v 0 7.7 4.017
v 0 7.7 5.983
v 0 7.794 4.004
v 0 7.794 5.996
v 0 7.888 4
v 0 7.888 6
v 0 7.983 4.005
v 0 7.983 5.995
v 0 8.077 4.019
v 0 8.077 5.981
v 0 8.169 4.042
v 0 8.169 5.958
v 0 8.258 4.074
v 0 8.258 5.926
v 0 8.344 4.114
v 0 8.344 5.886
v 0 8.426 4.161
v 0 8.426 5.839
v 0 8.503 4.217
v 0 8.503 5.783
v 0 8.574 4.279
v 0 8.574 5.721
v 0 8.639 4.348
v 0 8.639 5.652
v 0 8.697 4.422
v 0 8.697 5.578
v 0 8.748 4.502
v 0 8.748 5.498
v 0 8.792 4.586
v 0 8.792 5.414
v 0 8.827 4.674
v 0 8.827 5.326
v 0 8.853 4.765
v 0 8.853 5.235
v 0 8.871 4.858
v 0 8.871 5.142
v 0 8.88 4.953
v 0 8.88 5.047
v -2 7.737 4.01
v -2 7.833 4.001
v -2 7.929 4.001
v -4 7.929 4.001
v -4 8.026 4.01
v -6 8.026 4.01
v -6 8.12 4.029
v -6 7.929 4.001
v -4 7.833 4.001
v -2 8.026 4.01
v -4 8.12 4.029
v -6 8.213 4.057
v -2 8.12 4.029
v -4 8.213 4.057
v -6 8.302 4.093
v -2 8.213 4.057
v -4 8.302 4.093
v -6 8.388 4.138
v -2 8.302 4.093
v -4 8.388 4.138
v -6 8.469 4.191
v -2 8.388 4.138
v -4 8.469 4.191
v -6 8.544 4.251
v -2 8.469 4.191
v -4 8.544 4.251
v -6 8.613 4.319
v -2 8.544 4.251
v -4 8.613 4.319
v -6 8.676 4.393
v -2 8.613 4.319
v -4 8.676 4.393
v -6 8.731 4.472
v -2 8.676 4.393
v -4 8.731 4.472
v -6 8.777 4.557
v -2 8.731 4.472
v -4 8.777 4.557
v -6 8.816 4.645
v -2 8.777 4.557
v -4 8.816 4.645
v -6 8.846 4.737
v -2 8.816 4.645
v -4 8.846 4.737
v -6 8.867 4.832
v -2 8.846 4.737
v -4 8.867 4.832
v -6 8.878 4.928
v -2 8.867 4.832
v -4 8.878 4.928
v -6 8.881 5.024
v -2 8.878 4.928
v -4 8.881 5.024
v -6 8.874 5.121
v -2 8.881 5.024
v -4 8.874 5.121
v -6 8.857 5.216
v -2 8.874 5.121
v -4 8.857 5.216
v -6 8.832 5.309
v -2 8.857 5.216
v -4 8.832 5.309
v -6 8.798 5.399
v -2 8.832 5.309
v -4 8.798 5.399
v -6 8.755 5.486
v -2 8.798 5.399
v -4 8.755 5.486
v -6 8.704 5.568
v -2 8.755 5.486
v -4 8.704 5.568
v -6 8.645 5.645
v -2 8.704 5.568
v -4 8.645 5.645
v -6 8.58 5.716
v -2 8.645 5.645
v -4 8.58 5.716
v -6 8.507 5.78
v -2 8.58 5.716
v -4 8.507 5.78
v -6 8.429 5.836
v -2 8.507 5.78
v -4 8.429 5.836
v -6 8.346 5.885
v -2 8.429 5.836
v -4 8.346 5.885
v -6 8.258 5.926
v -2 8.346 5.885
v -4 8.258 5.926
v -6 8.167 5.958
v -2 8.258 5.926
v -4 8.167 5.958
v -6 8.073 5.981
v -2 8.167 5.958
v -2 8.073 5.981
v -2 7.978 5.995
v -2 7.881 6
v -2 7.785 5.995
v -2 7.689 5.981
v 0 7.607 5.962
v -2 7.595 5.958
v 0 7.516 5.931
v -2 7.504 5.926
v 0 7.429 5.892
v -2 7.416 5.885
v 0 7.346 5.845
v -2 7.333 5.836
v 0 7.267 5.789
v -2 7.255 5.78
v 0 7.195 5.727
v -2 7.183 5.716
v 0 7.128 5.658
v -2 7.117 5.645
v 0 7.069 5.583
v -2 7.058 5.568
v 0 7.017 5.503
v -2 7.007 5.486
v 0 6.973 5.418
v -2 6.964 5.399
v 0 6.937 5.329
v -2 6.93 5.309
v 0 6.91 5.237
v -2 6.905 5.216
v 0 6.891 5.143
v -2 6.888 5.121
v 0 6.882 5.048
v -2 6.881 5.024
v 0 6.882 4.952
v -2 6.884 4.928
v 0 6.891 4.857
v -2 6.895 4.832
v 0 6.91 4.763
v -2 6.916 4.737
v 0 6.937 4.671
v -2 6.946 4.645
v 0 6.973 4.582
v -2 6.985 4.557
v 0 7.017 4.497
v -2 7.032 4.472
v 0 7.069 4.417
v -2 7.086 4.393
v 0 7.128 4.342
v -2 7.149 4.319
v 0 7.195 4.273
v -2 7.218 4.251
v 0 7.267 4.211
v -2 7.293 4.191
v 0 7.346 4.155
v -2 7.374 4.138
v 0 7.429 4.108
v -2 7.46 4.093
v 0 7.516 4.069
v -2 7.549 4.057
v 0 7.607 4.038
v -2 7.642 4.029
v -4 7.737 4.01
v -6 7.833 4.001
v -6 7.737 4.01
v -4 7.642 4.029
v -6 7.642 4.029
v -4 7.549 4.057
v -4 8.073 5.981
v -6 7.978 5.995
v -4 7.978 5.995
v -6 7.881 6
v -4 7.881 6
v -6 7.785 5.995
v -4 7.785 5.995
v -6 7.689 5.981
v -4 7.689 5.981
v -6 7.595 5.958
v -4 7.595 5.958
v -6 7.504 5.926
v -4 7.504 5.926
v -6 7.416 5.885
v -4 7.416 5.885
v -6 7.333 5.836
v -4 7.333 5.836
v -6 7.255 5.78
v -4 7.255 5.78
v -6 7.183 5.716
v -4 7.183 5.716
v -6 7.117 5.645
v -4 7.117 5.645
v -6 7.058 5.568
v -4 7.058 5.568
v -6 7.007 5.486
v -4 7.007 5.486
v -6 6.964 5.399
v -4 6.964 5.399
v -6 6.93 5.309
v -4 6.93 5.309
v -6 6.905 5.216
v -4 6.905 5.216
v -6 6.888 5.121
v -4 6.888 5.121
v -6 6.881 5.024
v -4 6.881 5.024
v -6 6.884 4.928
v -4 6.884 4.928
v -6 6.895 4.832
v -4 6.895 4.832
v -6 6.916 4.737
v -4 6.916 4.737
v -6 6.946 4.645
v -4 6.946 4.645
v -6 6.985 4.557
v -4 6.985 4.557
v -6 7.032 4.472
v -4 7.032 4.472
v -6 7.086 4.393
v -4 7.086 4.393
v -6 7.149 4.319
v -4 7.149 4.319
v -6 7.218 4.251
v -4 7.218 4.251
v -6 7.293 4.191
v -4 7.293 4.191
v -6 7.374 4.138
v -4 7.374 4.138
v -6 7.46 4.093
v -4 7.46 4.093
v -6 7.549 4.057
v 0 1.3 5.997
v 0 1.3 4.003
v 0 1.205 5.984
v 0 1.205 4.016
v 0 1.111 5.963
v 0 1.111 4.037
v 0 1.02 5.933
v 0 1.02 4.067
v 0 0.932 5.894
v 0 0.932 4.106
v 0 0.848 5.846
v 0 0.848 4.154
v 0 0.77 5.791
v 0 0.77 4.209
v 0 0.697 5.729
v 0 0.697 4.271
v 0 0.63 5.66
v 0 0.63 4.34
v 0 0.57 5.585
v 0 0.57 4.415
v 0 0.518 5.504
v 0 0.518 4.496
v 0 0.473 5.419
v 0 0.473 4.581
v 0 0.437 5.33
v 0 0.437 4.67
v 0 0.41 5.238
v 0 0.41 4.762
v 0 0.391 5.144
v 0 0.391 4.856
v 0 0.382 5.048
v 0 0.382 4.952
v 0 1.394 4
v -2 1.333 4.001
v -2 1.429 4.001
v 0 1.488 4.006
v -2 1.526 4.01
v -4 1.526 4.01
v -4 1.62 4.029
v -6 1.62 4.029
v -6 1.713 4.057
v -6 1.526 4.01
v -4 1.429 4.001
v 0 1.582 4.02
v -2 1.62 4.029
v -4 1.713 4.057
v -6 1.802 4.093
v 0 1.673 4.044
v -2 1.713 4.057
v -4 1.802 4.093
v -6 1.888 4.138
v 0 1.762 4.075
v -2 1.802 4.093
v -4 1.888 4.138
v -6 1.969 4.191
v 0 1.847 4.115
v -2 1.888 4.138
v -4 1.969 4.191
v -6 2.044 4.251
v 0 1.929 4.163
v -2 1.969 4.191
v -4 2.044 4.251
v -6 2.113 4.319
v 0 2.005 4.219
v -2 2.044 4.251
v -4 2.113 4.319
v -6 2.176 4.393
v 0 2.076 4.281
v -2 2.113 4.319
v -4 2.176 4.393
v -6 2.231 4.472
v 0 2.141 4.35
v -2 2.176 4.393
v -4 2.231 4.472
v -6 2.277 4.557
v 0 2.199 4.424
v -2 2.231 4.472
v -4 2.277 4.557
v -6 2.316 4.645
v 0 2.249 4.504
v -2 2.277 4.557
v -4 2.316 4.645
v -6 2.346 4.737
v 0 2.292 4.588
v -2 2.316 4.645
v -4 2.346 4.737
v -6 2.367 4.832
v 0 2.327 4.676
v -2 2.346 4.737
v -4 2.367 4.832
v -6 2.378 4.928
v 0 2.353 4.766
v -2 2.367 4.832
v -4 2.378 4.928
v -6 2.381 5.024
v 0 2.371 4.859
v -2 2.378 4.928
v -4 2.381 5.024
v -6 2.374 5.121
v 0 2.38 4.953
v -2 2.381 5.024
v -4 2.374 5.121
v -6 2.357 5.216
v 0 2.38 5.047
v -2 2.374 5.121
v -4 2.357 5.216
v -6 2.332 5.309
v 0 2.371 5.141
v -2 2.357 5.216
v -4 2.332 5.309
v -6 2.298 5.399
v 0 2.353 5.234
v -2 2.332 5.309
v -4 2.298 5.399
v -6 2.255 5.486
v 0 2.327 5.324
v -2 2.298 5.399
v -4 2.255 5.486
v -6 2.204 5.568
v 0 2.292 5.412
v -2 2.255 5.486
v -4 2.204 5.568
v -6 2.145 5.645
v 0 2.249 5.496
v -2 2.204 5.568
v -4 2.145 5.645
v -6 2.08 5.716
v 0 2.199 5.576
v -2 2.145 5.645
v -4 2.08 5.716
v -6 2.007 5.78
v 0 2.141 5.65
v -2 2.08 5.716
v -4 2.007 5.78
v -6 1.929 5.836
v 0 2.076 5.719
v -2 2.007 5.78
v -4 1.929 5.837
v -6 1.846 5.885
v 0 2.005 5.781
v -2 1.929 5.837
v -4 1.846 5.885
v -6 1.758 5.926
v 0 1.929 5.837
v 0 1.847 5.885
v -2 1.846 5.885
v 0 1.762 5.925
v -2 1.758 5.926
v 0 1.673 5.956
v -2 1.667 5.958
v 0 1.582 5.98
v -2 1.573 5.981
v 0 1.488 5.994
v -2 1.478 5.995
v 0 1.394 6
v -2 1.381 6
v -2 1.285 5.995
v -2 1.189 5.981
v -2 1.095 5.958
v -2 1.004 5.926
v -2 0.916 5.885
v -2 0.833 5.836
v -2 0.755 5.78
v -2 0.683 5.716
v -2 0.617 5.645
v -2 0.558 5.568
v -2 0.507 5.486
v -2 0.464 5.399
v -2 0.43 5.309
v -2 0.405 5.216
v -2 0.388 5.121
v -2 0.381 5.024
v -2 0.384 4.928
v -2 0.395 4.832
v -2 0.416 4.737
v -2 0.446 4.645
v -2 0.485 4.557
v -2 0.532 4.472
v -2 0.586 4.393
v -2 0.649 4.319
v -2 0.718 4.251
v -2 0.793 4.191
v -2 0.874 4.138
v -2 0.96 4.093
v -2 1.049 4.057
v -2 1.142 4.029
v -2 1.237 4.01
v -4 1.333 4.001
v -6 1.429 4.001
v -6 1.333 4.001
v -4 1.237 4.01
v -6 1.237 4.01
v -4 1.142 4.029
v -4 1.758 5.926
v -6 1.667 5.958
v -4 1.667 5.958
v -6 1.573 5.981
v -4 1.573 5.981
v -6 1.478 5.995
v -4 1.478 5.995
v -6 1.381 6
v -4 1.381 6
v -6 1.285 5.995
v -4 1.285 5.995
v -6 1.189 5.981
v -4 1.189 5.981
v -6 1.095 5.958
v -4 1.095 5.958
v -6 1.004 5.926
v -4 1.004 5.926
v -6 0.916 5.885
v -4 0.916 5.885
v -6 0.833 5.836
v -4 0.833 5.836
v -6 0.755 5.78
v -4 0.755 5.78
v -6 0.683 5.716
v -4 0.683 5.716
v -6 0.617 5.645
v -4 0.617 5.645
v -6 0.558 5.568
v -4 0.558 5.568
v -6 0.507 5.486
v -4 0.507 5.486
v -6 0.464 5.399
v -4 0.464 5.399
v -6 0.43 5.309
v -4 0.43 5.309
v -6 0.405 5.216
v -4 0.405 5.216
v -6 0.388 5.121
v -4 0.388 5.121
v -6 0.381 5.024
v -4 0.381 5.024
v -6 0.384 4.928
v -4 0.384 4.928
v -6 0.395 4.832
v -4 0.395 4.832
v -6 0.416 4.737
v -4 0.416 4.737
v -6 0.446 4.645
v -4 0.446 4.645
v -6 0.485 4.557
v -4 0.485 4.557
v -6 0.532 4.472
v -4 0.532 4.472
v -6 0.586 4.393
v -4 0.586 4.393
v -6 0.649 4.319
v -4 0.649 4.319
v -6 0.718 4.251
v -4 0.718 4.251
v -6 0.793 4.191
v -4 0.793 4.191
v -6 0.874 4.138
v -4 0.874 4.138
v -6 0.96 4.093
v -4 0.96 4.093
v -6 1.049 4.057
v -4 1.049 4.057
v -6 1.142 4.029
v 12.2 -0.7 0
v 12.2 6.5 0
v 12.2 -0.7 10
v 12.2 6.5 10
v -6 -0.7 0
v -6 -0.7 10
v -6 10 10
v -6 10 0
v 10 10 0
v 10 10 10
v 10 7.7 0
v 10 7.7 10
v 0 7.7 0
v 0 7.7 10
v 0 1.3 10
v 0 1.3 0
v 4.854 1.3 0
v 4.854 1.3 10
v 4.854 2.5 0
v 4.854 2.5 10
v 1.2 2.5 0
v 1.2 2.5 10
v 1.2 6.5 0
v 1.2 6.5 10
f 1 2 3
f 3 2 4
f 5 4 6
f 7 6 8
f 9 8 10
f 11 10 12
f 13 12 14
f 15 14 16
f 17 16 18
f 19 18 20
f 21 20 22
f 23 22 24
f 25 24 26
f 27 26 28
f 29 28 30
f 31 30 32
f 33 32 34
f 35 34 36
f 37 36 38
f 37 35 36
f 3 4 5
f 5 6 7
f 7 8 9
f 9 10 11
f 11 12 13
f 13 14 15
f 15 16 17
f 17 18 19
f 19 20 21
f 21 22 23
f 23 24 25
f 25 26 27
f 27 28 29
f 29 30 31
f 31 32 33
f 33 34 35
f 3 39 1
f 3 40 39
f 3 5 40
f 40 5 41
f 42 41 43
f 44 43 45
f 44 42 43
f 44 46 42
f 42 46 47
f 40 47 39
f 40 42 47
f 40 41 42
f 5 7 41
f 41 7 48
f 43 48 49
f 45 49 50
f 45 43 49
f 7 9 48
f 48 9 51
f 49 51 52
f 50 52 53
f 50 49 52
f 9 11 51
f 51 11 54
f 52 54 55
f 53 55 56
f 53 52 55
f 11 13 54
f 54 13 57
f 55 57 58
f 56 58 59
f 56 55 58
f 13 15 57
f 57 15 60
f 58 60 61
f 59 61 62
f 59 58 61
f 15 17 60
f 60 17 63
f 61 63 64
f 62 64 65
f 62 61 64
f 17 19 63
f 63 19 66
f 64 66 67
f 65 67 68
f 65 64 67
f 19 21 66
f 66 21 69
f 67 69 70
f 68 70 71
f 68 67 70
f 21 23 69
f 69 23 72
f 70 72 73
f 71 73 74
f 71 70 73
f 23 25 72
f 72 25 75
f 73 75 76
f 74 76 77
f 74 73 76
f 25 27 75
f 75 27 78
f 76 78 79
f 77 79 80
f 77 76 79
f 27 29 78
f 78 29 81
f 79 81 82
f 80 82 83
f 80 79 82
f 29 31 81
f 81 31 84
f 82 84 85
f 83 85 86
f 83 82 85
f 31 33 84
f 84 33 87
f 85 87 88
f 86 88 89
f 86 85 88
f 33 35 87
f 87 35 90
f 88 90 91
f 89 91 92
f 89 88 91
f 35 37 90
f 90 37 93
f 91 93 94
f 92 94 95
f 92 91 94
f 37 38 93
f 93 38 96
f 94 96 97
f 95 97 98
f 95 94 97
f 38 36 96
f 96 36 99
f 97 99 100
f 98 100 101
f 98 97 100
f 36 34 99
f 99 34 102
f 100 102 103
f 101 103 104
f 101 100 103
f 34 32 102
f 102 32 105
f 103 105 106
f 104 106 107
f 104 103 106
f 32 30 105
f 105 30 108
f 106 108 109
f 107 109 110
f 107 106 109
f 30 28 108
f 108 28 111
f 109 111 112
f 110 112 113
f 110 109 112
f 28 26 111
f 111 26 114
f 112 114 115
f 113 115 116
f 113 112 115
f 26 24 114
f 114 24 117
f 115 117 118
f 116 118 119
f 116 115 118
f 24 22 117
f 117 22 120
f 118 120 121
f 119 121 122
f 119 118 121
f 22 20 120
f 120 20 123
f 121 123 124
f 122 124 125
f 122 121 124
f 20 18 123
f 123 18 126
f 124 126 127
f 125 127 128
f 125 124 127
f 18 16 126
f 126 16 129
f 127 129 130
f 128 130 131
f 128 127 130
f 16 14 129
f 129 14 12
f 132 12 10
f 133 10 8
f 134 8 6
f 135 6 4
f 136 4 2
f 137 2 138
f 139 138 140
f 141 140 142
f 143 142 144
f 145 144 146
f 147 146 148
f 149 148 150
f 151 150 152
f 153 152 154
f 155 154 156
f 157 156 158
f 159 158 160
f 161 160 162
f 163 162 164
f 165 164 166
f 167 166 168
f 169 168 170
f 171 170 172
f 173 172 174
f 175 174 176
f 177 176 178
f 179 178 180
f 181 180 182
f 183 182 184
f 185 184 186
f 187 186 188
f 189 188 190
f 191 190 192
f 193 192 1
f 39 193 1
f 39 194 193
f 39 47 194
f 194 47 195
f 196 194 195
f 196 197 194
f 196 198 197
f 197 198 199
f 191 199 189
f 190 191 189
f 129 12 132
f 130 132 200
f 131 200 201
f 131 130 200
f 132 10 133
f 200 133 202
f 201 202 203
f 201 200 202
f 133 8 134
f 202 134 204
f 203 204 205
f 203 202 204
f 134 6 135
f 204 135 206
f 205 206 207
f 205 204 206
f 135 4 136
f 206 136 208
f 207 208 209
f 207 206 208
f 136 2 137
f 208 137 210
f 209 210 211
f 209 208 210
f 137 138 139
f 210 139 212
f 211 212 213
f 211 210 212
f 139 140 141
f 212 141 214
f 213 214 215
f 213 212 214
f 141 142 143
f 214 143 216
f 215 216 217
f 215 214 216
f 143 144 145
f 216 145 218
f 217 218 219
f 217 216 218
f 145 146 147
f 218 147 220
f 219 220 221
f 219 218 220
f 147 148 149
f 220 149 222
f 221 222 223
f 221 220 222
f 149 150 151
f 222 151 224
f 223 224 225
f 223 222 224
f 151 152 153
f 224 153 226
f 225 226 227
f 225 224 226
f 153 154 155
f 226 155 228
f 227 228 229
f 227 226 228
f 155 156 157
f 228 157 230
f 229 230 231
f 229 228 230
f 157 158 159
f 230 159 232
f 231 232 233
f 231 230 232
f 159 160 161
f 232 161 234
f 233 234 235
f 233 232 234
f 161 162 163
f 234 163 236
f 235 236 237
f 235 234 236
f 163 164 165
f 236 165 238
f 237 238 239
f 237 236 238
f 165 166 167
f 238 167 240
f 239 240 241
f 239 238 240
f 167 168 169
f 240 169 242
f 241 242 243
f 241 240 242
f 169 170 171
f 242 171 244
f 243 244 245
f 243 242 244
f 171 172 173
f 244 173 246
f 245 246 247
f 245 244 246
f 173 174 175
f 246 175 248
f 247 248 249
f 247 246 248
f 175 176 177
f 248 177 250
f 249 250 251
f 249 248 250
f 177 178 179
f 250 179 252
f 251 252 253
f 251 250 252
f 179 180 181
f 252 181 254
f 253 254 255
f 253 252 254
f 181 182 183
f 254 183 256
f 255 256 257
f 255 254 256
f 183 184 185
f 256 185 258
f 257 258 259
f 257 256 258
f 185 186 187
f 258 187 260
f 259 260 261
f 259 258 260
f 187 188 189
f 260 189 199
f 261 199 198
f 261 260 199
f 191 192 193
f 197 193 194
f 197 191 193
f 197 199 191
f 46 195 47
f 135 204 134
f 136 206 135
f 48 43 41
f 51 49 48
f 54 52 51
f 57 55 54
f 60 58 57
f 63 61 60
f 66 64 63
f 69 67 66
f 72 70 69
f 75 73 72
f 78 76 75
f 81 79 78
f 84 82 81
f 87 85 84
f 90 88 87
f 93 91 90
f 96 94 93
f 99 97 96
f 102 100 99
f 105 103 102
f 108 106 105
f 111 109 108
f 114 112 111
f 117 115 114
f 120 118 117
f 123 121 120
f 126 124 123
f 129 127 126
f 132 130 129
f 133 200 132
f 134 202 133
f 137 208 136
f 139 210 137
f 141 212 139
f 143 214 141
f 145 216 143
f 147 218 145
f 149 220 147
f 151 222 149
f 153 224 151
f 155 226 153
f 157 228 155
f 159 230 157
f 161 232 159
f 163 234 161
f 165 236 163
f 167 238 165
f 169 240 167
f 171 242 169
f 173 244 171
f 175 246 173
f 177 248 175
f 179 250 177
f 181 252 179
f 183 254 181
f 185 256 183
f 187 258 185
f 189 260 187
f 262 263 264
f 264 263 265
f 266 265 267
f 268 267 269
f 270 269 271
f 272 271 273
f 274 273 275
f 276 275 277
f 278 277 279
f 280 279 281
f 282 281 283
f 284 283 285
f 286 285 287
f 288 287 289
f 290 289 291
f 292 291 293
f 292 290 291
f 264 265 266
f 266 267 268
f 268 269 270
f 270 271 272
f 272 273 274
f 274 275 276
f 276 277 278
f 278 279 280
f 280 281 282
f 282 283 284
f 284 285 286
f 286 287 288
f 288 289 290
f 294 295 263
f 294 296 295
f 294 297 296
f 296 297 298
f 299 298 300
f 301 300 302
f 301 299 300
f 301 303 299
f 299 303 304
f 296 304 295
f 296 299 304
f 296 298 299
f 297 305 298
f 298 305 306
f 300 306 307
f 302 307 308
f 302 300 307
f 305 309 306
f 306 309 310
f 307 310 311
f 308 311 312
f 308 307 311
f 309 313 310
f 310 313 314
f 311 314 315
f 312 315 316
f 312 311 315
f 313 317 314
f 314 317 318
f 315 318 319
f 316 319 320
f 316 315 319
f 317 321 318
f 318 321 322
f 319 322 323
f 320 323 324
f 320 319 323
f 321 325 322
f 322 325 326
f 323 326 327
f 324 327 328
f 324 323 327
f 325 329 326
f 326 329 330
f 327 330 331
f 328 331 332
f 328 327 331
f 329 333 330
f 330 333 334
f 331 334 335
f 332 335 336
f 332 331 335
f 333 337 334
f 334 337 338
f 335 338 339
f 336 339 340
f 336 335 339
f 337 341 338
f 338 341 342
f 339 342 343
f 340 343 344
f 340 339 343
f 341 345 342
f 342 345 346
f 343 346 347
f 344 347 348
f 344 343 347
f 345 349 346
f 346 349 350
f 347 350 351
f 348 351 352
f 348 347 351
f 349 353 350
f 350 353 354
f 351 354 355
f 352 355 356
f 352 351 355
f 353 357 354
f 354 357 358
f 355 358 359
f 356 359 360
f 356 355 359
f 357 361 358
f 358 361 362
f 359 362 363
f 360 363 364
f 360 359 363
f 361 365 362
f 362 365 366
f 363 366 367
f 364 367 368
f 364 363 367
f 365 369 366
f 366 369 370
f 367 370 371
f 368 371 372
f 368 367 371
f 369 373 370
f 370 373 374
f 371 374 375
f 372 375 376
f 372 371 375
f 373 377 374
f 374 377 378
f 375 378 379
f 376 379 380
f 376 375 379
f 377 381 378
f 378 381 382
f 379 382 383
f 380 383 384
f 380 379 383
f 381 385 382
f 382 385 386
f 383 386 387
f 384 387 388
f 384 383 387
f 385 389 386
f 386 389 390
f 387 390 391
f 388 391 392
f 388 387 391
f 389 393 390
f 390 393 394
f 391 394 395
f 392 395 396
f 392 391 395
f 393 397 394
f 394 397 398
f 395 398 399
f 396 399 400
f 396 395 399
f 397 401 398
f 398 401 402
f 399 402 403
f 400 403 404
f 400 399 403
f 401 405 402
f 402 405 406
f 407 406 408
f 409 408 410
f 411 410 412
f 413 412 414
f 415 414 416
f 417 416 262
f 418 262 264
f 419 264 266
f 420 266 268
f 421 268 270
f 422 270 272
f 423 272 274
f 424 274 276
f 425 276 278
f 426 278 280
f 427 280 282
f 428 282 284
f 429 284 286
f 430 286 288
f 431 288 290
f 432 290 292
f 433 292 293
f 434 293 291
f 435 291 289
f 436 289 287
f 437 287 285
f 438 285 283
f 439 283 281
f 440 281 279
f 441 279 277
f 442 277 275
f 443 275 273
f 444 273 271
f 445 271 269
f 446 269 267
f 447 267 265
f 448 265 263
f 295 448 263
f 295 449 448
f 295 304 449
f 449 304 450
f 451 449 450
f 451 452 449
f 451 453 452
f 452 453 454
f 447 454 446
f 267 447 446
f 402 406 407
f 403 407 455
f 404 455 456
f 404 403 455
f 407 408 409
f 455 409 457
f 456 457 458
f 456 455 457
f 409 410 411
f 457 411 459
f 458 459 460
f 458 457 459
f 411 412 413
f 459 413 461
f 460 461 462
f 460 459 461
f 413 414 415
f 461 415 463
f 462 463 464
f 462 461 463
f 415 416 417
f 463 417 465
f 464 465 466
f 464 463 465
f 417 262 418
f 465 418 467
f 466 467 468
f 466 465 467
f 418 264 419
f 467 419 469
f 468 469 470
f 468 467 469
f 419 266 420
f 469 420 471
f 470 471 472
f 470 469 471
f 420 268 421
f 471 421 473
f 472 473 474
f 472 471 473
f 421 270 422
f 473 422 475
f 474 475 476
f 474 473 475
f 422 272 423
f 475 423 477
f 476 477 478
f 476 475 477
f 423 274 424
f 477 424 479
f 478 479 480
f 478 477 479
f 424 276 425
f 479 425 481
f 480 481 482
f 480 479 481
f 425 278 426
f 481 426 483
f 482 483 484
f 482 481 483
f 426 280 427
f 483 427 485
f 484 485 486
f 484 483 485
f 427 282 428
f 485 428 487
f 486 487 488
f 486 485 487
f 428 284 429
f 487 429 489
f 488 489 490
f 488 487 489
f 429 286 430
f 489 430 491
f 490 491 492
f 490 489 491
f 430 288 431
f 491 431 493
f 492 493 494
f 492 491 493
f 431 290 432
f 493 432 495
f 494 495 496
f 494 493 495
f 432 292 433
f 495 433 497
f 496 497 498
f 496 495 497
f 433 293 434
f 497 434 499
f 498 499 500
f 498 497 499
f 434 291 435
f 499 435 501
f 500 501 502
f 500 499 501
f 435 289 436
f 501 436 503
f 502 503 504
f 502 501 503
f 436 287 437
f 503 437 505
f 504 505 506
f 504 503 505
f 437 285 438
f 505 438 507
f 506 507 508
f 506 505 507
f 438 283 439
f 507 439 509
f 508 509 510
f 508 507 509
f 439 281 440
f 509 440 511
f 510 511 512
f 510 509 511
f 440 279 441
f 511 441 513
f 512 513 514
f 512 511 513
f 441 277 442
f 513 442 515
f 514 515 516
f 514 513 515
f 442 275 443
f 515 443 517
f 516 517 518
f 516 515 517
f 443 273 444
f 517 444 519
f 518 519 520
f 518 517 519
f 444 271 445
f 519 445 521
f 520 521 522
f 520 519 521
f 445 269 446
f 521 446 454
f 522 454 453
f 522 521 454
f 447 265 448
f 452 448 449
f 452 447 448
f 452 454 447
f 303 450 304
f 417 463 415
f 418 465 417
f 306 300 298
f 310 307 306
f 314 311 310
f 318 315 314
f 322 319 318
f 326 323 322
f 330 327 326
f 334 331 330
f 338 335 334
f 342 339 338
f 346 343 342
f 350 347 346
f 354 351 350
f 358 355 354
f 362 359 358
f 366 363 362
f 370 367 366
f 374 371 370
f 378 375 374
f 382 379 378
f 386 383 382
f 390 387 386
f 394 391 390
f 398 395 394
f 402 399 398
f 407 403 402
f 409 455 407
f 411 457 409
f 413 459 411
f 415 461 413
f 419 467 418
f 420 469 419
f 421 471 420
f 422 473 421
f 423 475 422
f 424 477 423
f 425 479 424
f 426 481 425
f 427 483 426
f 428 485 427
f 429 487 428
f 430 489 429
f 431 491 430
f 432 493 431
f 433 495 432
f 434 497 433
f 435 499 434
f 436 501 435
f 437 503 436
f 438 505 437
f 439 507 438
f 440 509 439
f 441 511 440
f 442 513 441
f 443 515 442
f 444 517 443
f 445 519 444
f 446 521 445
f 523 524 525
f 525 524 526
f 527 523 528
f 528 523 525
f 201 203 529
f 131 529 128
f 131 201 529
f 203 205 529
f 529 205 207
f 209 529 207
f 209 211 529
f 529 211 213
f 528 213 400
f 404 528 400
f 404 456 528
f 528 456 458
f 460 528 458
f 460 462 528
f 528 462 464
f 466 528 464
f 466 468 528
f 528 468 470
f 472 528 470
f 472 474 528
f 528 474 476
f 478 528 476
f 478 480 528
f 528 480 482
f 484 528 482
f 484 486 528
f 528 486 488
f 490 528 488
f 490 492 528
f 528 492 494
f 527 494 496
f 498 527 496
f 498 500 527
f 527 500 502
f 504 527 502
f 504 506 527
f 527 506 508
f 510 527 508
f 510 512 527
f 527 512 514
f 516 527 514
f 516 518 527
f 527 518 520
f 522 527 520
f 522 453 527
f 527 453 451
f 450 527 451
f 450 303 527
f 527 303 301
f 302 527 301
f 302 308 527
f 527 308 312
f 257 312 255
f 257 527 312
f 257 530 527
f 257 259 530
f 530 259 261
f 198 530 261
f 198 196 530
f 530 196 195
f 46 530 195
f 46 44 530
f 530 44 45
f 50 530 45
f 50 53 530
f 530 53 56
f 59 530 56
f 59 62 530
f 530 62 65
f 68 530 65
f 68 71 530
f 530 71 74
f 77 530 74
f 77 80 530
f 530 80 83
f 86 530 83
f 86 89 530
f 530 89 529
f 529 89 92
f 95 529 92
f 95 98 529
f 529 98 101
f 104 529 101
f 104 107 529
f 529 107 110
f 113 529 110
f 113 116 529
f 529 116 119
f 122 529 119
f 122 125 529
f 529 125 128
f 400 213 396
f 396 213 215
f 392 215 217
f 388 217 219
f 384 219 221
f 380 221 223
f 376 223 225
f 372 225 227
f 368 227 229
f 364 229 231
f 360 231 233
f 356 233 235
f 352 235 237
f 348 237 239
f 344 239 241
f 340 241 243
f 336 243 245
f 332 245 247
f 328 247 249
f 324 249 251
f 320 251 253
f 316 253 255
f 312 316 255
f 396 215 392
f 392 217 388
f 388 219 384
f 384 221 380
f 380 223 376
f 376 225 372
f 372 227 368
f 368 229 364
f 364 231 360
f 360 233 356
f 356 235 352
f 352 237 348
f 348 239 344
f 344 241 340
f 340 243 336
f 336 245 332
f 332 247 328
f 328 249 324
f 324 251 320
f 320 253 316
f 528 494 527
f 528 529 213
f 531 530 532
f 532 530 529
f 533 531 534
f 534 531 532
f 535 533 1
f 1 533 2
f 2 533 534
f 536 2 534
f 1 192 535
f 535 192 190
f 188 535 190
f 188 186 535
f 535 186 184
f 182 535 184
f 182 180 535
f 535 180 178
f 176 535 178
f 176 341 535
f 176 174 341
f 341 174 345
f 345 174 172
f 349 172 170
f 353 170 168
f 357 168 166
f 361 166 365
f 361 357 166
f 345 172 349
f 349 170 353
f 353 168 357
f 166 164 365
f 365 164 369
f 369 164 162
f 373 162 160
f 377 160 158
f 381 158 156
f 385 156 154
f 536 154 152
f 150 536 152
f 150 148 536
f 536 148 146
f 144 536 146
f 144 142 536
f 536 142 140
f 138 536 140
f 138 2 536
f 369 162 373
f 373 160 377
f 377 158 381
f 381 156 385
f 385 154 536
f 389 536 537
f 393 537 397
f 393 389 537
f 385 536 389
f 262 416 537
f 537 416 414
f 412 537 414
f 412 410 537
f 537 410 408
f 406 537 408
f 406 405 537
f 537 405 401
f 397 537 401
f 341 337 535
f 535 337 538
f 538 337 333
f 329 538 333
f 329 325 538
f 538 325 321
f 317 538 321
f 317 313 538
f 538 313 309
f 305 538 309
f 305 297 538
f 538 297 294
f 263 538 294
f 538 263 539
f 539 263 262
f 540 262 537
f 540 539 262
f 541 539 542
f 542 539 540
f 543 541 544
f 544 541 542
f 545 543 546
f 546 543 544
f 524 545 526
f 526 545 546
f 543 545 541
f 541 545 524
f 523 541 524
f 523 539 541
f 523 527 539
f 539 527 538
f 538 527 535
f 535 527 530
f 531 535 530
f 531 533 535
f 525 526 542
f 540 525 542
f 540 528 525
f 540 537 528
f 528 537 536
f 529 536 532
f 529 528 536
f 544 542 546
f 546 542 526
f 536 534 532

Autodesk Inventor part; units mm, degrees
ref_plane "YZ Plane" through (0, 0, 0) normal (1, 0, 0) x (0, 1, 0)
ref_plane "XZ Plane" through (0, 0, 0) normal (0, 1, 0) x (-1, 0, 0)
ref_plane "XY Plane" through (0, 0, 0) normal (0, 0, 1) x (1, 0, 0)
sketch "Sketch1" plane through (0, 0, 0) normal (0, 0, 1) x (1, 0, 0)
  line L0 (0, 7.7) -> (0, 1.3)
  line L1 (1.2, 6.5) -> (12.2, 6.5)
  line L2 (1.2, 2.5) -> (4.8537, 2.5)
  line L3 (1.2, 6.5) -> (1.2, 2.5)
  line L4 (0, 1.3) -> (4.8537, 1.3)
  line L5 (4.8537, 2.5) -> (4.8537, 1.3)
  line L6 (12.2, -0.7) -> (12.2, 6.5)
  line L7 (0, 7.7) -> (10, 7.7)
  line L8 (10, 7.7) -> (10, 10)
  line L9 (-6, 10) -> (-6, -0.7)
  line L10 (-6, 10) -> (10, 10)
  line L11 (-6, -0.7) -> (12.2, -0.7)
  dimension "d7" = 1.2
  dimension "d9" = 1.2
  dimension "d10" = 11
  dimension "d12" = 1.2
  dimension "d13" = 4
  dimension "d21" = 6
extrude "Extrusion3" add sketch "Sketch1" along normal blind 10
sketch "Sketch3" plane through (-6, -0.7, 0) normal (-1, 0, 0) x (0, 0, 1)
  circle A0 centre (5, 8.5811) radius 1
  circle A1 centre (5, 2.0811) radius 1
  line L0 (0, 0) -> (0, 10.7) projected
  line L1 (0, 0) -> (10, 0) projected
  line L2 (10, 10.7) -> (10, 0) projected
  line L3 (0, 10.7) -> (10, 10.7) projected
  line L4 (5, 10.7) -> (5, 0)
  point P0 (0, 0.7)
  dimension "d24" = 2
  dimension "d25" = 2
  dimension "d26" = 6.5
extrude "Extrusion4" cut sketch "Sketch3" against normal blind 6 contours A0 L4 | L4 A0 | L4 A1 | A1 L4
properties part number "endstop mount"
